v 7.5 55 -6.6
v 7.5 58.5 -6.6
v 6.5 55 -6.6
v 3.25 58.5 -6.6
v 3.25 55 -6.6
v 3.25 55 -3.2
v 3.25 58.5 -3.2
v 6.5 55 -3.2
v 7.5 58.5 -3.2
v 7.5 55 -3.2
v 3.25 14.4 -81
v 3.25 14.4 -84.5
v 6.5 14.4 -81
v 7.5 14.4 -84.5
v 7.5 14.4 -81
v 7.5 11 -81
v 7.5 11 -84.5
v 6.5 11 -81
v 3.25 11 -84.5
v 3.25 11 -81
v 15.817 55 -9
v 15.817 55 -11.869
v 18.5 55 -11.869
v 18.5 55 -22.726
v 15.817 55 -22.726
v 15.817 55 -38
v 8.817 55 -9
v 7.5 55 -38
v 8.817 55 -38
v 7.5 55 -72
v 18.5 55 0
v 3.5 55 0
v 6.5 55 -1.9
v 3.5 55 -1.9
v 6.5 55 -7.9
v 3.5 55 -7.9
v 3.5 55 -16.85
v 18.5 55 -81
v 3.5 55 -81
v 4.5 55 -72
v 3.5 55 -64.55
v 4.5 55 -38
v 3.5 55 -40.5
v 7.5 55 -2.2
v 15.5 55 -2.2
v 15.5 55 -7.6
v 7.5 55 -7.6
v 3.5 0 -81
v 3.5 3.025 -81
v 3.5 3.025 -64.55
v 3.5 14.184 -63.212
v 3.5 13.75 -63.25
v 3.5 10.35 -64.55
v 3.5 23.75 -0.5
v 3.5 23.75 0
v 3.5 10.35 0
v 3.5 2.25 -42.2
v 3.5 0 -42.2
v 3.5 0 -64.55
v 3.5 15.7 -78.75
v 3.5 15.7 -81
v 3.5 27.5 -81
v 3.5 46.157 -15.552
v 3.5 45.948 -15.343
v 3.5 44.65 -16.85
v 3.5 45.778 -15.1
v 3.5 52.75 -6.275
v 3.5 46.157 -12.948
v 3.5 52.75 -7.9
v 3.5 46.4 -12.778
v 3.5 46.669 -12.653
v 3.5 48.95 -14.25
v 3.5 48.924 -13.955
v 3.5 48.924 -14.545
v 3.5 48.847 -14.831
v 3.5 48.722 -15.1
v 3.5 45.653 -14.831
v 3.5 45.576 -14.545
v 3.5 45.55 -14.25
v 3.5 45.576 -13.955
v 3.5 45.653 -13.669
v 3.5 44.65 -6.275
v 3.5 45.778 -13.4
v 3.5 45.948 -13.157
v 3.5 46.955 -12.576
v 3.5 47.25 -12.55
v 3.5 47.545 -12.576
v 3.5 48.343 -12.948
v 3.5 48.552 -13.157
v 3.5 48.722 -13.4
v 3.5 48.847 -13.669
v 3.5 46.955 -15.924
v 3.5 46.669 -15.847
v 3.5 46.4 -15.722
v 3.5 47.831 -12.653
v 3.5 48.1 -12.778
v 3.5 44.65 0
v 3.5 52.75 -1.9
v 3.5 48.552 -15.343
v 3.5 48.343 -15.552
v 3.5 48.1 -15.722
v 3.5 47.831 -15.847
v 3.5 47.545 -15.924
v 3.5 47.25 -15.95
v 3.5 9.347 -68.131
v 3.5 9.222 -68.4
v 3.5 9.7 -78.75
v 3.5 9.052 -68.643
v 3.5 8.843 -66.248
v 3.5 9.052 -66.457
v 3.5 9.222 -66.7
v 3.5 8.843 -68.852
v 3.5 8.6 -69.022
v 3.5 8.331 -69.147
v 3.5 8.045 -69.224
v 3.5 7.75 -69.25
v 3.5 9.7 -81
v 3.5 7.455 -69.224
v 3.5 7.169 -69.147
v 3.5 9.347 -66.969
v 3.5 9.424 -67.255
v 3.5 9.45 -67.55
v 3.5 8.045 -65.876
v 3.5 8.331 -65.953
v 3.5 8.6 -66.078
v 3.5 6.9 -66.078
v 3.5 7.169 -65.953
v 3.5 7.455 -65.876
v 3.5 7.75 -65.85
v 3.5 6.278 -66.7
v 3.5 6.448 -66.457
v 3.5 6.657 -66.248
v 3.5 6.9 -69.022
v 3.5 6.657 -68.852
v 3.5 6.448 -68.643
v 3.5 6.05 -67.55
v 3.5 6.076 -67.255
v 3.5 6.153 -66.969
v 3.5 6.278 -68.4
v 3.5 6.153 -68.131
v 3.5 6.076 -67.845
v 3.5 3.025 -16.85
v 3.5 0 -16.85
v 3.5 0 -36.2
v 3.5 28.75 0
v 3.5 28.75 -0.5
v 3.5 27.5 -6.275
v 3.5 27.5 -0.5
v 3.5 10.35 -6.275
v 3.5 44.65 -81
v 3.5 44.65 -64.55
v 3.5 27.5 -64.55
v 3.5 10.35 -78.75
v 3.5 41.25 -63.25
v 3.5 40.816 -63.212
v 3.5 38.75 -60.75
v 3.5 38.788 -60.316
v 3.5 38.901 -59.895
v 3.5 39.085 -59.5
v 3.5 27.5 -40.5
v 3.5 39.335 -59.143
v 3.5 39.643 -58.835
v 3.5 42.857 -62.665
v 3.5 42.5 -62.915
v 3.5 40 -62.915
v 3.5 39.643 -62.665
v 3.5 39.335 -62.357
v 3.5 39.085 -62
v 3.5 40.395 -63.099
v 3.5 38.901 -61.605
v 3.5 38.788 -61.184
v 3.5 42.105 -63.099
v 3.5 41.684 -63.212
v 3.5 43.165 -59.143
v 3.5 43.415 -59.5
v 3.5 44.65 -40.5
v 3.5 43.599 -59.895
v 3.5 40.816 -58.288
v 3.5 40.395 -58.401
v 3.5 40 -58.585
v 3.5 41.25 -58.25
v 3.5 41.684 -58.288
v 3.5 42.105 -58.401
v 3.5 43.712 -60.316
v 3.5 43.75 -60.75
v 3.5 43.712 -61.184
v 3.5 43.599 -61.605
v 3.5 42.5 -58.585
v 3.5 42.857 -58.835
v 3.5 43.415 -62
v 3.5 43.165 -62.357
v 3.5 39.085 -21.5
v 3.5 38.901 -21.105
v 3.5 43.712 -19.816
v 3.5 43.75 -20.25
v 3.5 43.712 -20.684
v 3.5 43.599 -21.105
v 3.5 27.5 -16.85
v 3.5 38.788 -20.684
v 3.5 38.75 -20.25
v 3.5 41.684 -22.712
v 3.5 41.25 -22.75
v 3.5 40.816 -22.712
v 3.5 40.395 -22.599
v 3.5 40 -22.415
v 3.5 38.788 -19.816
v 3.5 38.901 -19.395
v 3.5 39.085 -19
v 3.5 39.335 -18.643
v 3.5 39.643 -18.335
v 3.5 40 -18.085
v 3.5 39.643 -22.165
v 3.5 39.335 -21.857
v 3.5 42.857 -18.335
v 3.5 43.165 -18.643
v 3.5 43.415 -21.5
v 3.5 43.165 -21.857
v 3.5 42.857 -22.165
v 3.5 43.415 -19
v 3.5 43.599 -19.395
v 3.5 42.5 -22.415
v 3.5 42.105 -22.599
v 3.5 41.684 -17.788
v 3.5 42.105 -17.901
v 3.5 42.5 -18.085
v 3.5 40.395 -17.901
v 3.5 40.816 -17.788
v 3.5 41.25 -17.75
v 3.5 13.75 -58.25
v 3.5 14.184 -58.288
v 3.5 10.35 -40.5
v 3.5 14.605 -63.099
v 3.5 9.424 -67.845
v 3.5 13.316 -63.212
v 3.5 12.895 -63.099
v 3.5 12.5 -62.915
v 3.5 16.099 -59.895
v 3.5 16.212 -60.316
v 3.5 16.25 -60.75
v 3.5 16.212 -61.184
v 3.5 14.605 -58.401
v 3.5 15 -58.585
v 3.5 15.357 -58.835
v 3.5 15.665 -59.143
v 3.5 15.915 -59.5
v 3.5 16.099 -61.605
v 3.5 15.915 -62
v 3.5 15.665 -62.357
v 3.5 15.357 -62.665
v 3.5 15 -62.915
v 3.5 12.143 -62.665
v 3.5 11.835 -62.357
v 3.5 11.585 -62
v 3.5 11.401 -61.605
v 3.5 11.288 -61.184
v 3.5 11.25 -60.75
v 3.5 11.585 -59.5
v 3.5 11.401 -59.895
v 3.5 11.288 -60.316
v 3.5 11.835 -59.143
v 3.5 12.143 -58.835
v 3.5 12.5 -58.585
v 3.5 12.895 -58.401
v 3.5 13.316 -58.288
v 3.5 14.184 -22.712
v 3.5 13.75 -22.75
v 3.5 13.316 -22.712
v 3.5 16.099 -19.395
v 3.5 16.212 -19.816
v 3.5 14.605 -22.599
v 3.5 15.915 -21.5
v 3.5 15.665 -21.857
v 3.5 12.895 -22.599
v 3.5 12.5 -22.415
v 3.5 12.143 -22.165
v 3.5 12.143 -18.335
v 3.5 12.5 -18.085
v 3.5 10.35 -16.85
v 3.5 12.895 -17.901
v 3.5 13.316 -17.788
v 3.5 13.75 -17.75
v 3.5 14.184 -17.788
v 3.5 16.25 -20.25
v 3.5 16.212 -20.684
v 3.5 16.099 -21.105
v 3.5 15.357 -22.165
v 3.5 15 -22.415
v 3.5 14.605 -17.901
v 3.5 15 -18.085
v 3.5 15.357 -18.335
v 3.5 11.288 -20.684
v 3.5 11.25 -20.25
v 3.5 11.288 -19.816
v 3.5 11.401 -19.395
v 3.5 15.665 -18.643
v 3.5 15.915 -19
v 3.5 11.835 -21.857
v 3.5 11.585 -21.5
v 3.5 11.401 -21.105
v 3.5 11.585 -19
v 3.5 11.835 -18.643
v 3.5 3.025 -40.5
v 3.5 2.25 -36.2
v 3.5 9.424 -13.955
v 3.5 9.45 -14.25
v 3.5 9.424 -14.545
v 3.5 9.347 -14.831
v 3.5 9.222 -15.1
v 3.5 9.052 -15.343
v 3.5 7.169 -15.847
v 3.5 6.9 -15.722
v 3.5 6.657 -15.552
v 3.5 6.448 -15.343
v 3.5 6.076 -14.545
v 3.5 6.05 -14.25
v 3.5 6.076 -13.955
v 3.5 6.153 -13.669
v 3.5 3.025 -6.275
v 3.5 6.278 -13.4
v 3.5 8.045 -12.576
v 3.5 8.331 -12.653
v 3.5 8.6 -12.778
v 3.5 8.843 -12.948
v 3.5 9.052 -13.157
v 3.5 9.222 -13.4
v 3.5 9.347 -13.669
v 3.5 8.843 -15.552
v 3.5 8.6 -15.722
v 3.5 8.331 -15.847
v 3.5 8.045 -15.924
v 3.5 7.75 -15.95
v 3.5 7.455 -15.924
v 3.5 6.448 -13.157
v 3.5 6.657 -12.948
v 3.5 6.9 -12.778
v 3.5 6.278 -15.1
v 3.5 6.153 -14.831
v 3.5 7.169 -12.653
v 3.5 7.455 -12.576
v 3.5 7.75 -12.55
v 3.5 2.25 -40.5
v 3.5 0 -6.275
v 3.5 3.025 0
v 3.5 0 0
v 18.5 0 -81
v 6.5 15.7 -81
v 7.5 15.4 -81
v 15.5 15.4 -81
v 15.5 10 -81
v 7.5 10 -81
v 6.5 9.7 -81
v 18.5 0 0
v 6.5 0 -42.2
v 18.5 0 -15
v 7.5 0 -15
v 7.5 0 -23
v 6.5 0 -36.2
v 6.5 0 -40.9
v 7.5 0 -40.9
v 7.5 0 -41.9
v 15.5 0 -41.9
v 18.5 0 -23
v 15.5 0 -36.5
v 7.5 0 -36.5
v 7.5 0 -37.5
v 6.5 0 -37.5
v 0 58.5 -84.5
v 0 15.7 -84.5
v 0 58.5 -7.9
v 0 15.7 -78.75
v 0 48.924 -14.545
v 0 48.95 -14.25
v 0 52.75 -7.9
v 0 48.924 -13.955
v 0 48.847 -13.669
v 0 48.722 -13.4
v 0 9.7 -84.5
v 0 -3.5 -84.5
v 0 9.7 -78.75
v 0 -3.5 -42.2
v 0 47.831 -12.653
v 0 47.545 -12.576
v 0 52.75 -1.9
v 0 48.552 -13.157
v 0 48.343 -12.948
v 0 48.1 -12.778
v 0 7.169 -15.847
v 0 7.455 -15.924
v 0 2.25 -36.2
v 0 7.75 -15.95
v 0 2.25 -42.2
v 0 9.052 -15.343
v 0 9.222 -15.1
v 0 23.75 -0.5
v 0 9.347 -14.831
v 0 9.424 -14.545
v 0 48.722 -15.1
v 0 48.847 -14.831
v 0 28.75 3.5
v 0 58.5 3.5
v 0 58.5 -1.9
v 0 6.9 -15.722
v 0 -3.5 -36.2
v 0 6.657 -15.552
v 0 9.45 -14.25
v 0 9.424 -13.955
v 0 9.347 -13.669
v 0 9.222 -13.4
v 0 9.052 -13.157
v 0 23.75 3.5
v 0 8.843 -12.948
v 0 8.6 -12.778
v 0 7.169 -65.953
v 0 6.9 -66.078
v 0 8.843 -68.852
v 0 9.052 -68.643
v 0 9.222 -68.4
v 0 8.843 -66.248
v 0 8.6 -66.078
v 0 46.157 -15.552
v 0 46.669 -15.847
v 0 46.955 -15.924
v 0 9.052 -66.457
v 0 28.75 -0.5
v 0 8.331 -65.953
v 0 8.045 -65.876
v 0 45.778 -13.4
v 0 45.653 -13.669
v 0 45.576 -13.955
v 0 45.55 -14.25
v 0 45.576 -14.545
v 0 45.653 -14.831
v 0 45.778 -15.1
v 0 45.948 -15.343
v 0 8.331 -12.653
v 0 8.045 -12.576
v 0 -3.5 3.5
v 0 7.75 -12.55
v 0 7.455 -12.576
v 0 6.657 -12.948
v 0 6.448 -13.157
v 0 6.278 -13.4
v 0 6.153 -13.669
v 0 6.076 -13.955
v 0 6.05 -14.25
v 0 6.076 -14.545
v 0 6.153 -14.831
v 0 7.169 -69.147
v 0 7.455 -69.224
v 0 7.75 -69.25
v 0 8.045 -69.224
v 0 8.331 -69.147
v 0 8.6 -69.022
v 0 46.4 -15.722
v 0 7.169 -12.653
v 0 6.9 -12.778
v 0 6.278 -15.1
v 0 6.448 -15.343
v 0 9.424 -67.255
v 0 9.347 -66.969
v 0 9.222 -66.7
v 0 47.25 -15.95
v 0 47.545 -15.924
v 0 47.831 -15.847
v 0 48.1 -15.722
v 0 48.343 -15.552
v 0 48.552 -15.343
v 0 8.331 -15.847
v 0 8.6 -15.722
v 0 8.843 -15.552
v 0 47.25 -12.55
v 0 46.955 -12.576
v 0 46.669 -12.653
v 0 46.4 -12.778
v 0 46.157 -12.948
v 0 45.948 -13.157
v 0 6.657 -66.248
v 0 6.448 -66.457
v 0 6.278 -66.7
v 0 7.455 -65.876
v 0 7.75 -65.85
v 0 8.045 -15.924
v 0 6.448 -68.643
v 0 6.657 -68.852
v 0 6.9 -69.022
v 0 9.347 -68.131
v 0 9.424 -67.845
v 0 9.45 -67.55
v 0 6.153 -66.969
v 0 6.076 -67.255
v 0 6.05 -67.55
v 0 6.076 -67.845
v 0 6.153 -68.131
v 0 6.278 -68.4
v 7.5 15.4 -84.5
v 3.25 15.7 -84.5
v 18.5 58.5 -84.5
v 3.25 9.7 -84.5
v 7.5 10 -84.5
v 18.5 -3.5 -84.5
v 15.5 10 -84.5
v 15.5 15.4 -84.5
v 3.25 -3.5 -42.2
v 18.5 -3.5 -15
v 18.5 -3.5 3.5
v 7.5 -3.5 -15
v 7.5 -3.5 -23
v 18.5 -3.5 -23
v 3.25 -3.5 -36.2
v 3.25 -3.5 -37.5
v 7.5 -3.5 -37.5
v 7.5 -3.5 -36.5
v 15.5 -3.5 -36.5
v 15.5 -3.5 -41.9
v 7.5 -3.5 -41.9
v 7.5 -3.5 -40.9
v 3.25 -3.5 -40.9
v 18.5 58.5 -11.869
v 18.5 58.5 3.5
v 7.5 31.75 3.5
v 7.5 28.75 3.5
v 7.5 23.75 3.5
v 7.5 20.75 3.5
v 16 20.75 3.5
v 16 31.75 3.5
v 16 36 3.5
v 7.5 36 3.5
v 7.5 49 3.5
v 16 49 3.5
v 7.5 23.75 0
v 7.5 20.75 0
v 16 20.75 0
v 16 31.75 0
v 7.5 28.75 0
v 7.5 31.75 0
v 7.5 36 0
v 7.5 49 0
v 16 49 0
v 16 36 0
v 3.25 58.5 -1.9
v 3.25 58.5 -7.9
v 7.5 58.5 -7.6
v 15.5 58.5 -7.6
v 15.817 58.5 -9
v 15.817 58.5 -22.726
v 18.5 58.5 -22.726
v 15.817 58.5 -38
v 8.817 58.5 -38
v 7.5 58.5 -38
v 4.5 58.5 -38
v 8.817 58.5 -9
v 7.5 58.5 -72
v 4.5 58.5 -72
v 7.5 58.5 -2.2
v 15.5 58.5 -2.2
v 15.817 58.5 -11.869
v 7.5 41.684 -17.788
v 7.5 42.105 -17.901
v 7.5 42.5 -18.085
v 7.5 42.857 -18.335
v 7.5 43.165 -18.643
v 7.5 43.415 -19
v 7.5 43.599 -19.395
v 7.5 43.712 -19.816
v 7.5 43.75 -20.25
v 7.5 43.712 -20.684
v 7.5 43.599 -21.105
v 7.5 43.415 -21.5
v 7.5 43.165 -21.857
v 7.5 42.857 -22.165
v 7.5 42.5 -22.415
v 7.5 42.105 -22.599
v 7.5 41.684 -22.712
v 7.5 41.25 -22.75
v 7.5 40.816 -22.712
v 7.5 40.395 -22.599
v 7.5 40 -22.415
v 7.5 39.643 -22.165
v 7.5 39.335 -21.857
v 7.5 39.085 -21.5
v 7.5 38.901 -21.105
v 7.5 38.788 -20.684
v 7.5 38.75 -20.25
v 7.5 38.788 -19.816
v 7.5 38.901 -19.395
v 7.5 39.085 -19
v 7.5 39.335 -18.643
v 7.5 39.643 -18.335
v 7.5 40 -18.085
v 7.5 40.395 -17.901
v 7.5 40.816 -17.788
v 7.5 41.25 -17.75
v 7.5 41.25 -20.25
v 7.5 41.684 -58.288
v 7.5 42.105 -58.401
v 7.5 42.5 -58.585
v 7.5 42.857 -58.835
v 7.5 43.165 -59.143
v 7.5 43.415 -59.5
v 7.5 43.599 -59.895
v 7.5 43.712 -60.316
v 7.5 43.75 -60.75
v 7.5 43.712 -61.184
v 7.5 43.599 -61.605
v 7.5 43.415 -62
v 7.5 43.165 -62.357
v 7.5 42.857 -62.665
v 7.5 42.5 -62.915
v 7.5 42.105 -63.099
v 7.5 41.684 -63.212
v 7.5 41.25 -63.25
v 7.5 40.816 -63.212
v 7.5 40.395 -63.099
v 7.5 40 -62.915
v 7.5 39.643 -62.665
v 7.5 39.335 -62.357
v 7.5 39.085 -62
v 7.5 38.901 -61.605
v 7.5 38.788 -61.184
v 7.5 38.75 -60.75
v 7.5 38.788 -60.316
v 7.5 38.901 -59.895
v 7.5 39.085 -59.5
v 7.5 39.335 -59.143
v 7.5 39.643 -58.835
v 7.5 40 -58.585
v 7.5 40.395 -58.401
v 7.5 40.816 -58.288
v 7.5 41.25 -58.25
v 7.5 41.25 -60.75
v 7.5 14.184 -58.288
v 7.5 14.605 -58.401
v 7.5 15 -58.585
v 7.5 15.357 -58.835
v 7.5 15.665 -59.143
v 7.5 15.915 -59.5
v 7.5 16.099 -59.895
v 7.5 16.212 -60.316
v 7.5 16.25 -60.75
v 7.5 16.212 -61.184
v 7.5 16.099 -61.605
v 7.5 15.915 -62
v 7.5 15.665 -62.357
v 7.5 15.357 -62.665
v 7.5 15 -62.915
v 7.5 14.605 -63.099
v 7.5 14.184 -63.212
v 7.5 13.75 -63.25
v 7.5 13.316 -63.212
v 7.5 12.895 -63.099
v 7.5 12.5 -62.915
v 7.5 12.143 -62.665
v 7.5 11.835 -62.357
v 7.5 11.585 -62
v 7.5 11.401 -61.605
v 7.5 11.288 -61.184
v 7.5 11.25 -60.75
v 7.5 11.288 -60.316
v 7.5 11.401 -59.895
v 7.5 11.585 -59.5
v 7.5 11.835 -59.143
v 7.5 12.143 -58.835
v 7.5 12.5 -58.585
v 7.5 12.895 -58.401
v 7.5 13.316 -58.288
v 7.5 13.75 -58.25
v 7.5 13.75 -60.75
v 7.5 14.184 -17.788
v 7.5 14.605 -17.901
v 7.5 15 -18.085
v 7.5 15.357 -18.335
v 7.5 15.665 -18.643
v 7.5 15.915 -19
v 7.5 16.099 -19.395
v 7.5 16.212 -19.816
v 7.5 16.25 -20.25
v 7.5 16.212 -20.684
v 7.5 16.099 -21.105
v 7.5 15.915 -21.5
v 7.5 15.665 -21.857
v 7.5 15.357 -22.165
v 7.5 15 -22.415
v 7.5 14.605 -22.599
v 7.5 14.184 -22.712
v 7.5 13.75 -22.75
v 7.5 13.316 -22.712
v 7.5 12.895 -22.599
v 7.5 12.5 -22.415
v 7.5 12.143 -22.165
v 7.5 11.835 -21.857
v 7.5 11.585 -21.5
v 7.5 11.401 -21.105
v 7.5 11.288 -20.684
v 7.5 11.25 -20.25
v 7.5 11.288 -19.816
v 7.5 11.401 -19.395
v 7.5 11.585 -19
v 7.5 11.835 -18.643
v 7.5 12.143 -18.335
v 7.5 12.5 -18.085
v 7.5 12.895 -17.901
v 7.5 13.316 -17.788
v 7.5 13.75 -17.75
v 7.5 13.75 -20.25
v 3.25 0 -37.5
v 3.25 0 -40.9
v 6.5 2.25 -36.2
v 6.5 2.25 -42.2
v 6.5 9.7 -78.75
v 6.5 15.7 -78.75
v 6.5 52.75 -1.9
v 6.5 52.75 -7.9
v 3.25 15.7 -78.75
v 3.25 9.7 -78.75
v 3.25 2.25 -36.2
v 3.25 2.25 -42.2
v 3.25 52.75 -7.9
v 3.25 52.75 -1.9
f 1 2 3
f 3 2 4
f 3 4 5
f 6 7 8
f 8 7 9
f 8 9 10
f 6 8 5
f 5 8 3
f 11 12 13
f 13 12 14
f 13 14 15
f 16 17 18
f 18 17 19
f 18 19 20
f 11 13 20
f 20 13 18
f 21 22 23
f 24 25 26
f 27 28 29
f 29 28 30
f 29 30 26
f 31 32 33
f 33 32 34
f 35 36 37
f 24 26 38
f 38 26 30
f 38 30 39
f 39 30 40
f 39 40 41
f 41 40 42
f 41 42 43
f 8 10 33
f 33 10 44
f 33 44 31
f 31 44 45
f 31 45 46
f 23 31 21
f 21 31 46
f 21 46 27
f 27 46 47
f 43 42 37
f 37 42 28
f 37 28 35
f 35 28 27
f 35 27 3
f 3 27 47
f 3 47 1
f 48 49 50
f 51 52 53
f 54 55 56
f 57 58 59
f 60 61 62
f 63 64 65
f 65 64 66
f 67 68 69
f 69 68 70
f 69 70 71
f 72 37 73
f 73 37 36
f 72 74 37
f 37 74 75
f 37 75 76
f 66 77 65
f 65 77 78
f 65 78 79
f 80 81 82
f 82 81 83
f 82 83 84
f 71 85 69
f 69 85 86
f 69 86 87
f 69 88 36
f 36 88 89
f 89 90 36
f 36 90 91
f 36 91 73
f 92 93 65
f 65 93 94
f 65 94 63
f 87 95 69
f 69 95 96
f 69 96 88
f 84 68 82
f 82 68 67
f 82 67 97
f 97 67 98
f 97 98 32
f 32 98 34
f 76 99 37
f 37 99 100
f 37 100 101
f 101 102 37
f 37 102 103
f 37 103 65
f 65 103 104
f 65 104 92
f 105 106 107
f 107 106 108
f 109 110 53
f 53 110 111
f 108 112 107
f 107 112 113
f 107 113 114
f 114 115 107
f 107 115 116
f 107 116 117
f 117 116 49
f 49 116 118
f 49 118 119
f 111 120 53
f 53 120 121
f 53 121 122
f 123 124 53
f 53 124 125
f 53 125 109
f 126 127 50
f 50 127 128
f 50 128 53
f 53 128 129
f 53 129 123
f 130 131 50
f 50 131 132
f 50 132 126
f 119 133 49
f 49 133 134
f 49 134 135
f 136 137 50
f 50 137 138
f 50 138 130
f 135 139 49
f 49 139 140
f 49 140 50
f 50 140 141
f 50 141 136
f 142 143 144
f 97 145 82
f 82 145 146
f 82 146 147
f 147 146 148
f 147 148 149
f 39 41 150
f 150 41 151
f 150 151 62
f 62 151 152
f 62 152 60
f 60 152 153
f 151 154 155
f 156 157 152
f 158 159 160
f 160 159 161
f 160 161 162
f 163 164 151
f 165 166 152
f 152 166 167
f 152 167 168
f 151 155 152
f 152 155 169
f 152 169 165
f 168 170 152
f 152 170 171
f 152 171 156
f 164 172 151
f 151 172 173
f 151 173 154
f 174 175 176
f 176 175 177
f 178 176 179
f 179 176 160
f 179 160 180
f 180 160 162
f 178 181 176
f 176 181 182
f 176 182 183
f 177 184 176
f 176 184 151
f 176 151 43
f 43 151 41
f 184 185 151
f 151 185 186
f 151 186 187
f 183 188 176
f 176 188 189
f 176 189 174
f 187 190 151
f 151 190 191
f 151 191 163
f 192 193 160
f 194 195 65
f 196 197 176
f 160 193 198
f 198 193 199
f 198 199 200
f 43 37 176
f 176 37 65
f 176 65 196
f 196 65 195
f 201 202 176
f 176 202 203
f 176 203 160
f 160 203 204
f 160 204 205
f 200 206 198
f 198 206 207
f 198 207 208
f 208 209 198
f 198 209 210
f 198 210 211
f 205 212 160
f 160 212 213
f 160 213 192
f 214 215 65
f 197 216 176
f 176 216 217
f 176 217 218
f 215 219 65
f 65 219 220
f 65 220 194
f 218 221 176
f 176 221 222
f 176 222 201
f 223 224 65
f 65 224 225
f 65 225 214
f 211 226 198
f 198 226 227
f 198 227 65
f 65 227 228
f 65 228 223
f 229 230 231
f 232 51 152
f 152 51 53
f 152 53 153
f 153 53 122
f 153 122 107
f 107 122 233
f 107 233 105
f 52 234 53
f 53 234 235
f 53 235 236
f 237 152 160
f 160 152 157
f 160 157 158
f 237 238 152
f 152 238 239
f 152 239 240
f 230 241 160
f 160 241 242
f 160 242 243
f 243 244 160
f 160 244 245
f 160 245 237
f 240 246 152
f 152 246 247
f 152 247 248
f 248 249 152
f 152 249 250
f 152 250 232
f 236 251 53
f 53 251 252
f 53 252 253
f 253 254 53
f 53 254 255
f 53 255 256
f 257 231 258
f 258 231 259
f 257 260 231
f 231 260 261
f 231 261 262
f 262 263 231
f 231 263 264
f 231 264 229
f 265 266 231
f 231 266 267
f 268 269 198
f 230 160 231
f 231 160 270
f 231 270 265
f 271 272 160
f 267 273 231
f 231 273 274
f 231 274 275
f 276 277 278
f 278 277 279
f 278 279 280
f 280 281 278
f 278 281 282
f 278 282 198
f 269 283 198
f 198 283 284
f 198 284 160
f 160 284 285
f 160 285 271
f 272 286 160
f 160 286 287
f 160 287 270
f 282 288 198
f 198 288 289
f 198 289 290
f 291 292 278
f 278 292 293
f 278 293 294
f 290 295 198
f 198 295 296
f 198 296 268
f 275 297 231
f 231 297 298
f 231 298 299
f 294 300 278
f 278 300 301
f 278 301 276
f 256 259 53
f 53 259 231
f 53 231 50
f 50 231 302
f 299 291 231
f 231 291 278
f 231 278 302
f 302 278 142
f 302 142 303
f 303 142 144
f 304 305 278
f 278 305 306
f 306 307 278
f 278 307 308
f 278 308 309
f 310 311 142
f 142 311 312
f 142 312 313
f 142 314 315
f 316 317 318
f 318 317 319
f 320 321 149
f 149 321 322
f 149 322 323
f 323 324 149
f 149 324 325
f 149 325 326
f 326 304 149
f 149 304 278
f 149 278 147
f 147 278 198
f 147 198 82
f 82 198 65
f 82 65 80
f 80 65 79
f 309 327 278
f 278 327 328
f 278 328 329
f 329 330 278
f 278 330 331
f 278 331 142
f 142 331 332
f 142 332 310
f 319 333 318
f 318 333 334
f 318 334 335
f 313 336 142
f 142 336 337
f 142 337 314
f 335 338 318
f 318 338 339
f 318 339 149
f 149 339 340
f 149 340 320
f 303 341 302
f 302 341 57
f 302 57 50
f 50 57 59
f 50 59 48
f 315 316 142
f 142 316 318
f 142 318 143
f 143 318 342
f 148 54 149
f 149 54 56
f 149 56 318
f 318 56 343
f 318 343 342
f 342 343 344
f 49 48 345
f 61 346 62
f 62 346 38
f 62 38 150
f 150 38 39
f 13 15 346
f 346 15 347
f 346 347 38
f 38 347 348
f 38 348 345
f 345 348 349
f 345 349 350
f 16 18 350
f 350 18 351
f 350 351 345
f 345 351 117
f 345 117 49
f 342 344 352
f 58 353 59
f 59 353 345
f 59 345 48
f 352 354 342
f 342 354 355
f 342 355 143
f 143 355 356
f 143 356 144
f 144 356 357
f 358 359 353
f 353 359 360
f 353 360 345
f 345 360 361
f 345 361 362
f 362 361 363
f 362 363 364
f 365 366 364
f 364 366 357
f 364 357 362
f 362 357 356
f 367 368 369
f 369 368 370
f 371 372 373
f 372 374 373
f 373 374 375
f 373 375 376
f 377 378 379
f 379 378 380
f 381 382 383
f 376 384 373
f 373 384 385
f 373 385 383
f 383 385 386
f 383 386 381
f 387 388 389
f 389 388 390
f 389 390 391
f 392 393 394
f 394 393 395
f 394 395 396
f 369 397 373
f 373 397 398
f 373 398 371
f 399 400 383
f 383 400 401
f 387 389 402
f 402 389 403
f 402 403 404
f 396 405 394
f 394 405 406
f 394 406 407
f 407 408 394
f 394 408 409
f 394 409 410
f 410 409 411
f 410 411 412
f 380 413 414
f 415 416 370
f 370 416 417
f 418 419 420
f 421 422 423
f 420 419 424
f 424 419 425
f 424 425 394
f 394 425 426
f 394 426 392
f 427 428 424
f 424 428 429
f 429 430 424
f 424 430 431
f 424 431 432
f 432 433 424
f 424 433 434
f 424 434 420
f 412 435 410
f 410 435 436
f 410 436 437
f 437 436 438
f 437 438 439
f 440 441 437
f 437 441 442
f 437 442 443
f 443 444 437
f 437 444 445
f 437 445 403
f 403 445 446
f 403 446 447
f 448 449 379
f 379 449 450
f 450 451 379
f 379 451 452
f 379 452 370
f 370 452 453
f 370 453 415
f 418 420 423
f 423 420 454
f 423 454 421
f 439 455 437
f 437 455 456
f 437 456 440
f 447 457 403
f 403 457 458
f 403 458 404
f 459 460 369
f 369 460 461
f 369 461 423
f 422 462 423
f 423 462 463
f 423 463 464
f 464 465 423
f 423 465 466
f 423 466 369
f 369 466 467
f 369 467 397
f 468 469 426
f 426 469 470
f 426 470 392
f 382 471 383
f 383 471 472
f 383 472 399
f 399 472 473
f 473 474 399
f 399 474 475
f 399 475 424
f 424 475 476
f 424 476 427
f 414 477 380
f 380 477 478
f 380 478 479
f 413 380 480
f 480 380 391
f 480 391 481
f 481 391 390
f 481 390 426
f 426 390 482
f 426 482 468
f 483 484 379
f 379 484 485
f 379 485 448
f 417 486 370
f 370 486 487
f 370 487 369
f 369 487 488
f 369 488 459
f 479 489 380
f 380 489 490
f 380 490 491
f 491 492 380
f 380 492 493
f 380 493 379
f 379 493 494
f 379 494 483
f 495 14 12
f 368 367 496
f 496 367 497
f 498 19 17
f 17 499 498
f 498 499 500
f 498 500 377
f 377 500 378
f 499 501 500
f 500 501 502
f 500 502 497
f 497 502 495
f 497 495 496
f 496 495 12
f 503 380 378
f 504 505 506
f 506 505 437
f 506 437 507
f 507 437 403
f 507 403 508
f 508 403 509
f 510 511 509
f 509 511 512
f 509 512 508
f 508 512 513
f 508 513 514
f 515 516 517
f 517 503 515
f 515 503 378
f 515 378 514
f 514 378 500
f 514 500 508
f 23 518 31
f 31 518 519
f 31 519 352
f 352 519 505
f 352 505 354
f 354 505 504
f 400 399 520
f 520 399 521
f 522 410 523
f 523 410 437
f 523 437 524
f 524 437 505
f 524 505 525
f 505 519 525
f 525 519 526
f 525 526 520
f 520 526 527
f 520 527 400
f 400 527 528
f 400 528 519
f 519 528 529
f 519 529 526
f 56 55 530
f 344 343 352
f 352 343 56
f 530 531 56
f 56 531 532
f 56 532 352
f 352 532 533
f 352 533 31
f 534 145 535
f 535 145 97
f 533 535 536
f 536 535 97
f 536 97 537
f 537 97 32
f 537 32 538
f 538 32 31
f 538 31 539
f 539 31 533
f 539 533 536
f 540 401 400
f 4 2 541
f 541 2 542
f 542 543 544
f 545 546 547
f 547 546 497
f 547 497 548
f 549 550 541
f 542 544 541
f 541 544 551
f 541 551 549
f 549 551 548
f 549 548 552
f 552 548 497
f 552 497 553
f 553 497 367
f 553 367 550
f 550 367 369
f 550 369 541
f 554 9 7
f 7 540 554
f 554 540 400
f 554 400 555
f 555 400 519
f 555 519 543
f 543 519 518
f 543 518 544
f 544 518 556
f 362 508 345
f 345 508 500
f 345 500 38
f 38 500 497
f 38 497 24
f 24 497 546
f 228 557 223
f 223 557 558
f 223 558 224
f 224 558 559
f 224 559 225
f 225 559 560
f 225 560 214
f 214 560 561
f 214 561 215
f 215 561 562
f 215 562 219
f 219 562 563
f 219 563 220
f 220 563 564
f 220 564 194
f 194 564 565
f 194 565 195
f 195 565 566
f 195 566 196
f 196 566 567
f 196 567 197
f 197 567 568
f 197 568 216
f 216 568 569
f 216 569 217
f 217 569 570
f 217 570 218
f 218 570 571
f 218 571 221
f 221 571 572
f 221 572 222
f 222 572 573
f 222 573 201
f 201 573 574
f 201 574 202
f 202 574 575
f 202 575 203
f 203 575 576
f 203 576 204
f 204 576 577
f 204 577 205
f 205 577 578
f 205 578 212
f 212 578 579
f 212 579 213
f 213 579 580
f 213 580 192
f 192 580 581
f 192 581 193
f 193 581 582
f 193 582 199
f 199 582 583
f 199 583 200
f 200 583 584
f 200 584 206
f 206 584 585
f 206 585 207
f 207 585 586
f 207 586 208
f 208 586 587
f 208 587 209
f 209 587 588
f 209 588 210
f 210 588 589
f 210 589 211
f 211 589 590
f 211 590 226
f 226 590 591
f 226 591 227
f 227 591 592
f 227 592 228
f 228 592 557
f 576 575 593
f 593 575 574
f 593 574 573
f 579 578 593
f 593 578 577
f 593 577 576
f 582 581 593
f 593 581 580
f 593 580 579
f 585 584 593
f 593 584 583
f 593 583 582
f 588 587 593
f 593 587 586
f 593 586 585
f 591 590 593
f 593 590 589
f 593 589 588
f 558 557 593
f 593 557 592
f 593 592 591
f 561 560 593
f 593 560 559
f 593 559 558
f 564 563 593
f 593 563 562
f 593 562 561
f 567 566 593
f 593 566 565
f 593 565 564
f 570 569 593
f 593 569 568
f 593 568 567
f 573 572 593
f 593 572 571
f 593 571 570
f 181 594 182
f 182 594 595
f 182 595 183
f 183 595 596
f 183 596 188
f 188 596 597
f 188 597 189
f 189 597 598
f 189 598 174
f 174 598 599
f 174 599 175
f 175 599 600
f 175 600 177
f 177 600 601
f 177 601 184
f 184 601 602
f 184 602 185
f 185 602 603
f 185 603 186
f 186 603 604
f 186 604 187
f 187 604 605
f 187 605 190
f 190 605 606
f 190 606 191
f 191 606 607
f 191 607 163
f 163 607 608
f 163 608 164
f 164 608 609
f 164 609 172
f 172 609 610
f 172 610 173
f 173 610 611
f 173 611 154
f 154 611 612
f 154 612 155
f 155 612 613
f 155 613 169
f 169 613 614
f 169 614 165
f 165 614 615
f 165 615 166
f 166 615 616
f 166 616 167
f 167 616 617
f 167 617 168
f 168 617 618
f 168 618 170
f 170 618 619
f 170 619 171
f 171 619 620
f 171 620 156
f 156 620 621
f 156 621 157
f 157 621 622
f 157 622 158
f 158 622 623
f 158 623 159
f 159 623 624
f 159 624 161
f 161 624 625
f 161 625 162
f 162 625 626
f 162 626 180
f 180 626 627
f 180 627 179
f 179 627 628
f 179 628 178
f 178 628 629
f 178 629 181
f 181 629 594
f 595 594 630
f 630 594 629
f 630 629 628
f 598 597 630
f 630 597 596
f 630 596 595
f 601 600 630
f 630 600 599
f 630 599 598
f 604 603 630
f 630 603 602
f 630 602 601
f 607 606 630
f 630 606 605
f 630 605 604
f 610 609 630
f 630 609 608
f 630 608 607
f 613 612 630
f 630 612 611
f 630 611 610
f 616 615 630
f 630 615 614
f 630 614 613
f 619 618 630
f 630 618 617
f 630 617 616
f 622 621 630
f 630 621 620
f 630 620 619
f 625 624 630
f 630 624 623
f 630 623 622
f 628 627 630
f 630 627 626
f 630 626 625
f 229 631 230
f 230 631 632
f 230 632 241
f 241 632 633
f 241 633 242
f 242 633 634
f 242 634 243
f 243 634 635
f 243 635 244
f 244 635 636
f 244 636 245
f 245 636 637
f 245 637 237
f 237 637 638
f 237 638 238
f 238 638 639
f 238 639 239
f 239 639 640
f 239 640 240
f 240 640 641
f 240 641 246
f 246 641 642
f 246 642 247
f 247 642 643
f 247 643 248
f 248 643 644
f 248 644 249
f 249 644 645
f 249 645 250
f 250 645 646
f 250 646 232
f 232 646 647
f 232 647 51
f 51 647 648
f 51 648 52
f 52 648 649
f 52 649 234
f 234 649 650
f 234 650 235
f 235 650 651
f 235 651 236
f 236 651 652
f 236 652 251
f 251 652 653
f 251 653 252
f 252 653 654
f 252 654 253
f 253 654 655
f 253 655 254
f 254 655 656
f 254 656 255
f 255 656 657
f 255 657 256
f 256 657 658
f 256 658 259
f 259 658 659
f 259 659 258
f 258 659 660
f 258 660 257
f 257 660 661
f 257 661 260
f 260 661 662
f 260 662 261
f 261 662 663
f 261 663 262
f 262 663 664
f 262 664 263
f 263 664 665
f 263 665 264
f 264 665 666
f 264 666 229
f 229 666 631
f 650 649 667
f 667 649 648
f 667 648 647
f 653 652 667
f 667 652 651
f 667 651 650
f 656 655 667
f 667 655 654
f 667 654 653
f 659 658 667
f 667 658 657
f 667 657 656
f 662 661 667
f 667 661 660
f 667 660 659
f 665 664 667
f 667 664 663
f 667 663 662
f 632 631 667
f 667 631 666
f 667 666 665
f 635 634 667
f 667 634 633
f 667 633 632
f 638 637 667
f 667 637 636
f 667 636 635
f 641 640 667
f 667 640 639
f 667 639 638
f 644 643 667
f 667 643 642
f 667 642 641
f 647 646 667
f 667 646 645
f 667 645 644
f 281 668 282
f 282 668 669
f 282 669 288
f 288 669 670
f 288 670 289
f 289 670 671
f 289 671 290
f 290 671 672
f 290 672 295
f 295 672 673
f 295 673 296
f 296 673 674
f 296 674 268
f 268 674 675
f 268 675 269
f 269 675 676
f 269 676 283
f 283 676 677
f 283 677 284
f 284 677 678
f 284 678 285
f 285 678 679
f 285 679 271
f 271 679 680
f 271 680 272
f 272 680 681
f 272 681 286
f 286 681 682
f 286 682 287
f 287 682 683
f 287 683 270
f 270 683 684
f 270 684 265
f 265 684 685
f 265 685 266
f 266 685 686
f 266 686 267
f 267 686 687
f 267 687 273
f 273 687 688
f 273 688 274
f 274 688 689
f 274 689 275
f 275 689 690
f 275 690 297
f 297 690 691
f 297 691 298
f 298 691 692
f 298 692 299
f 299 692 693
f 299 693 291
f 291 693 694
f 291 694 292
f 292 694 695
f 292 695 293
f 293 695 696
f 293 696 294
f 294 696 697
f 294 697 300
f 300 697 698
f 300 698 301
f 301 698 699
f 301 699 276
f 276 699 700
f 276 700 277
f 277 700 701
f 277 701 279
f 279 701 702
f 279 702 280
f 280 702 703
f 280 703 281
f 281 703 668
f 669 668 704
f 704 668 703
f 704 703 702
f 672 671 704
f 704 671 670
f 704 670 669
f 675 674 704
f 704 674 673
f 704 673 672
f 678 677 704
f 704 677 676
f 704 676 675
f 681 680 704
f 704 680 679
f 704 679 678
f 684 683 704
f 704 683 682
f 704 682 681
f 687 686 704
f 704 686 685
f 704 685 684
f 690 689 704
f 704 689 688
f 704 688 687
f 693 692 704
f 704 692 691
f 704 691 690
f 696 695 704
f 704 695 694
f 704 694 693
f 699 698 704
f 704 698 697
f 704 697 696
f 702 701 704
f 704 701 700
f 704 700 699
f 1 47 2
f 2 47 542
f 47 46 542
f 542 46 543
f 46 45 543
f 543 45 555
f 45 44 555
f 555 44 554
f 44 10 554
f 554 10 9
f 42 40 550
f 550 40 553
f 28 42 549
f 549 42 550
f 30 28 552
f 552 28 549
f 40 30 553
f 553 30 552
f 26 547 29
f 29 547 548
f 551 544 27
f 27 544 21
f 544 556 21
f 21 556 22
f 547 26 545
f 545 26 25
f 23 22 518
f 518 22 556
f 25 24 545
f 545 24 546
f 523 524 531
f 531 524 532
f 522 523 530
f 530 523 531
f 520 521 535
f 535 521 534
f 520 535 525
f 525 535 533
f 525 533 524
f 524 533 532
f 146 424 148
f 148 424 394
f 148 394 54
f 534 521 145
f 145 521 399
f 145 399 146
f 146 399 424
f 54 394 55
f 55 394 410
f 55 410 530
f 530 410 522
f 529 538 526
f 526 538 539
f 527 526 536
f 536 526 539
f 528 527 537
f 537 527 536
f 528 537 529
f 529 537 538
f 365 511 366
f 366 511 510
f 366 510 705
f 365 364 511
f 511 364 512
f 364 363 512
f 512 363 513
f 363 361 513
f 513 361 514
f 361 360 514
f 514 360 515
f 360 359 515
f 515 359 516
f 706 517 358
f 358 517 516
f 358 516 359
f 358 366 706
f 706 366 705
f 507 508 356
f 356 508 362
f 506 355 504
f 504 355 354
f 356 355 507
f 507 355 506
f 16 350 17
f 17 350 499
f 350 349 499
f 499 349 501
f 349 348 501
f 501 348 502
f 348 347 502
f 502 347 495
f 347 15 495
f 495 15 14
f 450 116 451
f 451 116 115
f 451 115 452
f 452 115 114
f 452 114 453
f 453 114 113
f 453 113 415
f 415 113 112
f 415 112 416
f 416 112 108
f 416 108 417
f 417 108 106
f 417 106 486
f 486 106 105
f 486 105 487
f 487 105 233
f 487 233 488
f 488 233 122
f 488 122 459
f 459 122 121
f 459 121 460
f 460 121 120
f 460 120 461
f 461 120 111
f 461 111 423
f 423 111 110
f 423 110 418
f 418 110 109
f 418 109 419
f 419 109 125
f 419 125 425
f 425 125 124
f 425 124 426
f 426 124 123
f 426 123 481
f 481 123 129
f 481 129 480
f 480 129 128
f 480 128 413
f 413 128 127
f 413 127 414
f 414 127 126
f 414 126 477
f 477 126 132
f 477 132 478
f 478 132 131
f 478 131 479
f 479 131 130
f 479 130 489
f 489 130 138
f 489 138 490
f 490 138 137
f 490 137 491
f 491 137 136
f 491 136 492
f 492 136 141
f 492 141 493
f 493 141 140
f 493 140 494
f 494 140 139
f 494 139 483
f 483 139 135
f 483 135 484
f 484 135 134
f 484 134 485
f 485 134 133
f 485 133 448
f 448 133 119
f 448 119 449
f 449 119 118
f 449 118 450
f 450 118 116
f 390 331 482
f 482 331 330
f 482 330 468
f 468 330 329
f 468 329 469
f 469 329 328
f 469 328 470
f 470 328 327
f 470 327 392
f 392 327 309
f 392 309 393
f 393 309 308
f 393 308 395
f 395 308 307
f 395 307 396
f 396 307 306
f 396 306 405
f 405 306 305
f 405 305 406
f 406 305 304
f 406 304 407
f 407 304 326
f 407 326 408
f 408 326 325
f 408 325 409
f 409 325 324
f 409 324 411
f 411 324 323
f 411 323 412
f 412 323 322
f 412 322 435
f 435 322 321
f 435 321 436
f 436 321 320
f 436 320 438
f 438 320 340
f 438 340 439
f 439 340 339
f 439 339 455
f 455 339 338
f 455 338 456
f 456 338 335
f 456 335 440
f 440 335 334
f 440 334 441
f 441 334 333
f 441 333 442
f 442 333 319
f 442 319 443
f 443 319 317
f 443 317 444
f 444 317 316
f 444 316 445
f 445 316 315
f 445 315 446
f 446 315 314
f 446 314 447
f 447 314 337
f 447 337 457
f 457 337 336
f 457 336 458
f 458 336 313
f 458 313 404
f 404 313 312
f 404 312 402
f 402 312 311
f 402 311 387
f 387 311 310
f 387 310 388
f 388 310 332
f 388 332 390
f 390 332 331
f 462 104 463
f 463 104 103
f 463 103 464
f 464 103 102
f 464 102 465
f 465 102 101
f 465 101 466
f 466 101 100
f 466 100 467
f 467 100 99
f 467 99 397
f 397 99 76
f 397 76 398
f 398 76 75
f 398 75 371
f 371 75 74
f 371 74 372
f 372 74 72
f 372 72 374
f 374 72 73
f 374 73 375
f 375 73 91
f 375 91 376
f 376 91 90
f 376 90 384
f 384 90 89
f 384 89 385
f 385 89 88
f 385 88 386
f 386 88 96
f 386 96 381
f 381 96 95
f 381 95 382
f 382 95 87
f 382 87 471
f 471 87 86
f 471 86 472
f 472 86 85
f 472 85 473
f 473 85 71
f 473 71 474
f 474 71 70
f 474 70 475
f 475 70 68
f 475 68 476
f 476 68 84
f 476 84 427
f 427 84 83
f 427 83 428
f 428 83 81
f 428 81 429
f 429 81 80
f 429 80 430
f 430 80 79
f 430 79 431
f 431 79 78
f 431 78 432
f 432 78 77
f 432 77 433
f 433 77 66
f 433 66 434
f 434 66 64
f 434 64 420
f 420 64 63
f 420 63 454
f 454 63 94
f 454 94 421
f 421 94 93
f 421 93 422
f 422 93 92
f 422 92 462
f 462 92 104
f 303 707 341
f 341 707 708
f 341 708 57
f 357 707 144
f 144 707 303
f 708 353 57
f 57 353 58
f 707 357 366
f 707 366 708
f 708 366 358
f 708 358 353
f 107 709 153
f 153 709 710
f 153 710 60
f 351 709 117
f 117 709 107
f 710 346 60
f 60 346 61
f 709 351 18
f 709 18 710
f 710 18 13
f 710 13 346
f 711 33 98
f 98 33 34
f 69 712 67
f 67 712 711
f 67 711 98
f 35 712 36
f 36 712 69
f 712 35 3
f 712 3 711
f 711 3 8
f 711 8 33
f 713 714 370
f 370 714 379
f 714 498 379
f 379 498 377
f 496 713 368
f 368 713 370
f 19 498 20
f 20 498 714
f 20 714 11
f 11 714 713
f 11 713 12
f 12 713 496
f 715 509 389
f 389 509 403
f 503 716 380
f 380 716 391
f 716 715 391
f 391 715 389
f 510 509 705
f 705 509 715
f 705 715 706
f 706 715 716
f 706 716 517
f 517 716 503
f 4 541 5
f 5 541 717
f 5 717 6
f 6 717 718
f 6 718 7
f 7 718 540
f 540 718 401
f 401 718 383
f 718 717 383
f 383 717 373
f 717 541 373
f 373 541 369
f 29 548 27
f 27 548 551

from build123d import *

# Parameters (mm, degrees)
SKETCH_1_W          = 88
SKETCH_1_H          = 62
EXTRUDE_1_DEPTH     = 3.5
SKETCH_2_W          = 88
SKETCH_2_H          = 62
SKETCH_2_W_2        = 81
SKETCH_2_H_2        = 55
EXTRUDE_2_DEPTH     = 15
SKETCH_3_R          = 2.5
EXTRUDE_3_DEPTH     = 4
SKETCH_4_W          = 3
SKETCH_4_H          = 34
SKETCH_4_W_2        = 2.683429954
SKETCH_4_H_2        = 10.857152268
CUT_EXTRUDE_2_DEPTH = 3.5
SKETCH_7_W          = 8.5
SKETCH_7_H          = 11
SKETCH_7_H_2        = 13
SKETCH_7_W_2        = 7.5
SKETCH_7_H_3        = 2.5
CUT_EXTRUDE_3_DEPTH = 4
SKETCH_8_W          = 12
SKETCH_8_H          = 8
CUT_EXTRUDE_4_DEPTH = 3.5
CUT_EXTRUDE_5_DEPTH = 3.5
SKETCH_10_R         = 1.7
CUT_EXTRUDE_6_DEPTH = 3.5
EXTRUDE_4_DEPTH     = 3
SKETCH_12_W         = 6
SKETCH_12_H         = 5.75
SKETCH_12_W_2       = 5.75
SKETCH_12_H_2       = 6
CUT_EXTRUDE_7_DEPTH = 3.25
SKETCH_13_W         = 29
SKETCH_13_H         = 3.5
EXTRUDE_5_DEPTH     = 2


with BuildPart() as part:
    # 草图1 → 凸台-拉伸1 (new body)
    with BuildSketch(Plane(origin=(0, 0, 0), x_dir=(0, 0, -1), z_dir=(1, 0, 0))):
        with Locations((40.5, 27.5)):
            Rectangle(SKETCH_1_W, SKETCH_1_H)
    extrude(amount=EXTRUDE_1_DEPTH)

    # 草图2 → 凸台-拉伸2 (add)
    with BuildSketch(Plane(origin=(3.5, 0, 0), x_dir=(0, 0, -1), z_dir=(1, 0, 0))):
        with Locations((40.5, 27.5)):
            Rectangle(SKETCH_2_W, SKETCH_2_H)
        with Locations((40.5, 27.5)):
            Rectangle(SKETCH_2_W_2, SKETCH_2_H_2, mode=Mode.SUBTRACT)
    extrude(amount=EXTRUDE_2_DEPTH)

    # 草图3 → 凸台-拉伸3 (add)
    with BuildSketch(Plane(origin=(3.5, 0, 0), x_dir=(0, 0, -1), z_dir=(1, 0, 0))):
        with Locations((20.25, 41.25)):
            Circle(SKETCH_3_R)
        with Locations((60.75, 41.25)):
            Circle(SKETCH_3_R)
        with Locations((60.75, 13.75)):
            Circle(SKETCH_3_R)
        with Locations((20.25, 13.75)):
            Circle(SKETCH_3_R)
    extrude(amount=EXTRUDE_3_DEPTH)

    # 草图4 → 切除-拉伸2 (cut)
    with BuildSketch(Plane(origin=(0, 58.5, 0), x_dir=(1, 0, 0), z_dir=(0, 1, 0))):
        with Locations((6, 55)):
            Rectangle(SKETCH_4_W, SKETCH_4_H)
        Polygon((7.5, 38), (6.816570046, 38), (6.816570046, 9), (15.816570046, 9), (15.816570046, 11.869210194), (15.816570046, 22.726362462), (15.816570046, 38), align=None)
        Polygon((0, 3.2), (7.5, 3.2), (7.5, 2.2), (15.5, 2.2), (15.5, 7.6), (7.5, 7.6), (7.5, 6.6), (0, 6.6), align=None)
        with Locations((17.158285023, 17.297786328)):
            Rectangle(SKETCH_4_W_2, SKETCH_4_H_2)
    extrude(amount=-CUT_EXTRUDE_2_DEPTH, mode=Mode.SUBTRACT)

    # 草图7 → 切除-拉伸3 (cut)
    with BuildSketch(Plane.XY.offset(3.5)):
        with Locations((11.75, 26.25)):
            Rectangle(SKETCH_7_W, SKETCH_7_H)
        with Locations((11.75, 42.5)):
            Rectangle(SKETCH_7_W, SKETCH_7_H_2)
        with Locations((3.75, 27.5)):
            Rectangle(SKETCH_7_W_2, SKETCH_7_H_3)
        with Locations((3.75, 25)):
            Rectangle(SKETCH_7_W_2, SKETCH_7_H_3)
    extrude(amount=-CUT_EXTRUDE_3_DEPTH, mode=Mode.SUBTRACT)

    # 草图8 → 切除-拉伸4 (cut)
    with BuildSketch(Plane.XZ.offset(3.5)):
        with Locations((13.5, -19)):
            Rectangle(SKETCH_8_W, SKETCH_8_H)
        Polygon((7.5, -36.5), (15.5, -36.5), (15.5, -41.9), (7.5, -41.9), (7.5, -40.9), (0, -40.9), (0, -37.5), (7.5, -37.5), align=None)
    extrude(amount=-CUT_EXTRUDE_4_DEPTH, mode=Mode.SUBTRACT)

    # 草图9 → 切除-拉伸5 (cut)
    with BuildSketch(Plane(origin=(0, 0, -84.5), x_dir=(-1, 0, 0), z_dir=(0, 0, -1))):
        Polygon((-7.5, 11), (0, 11), (0, 14.4), (-7.5, 14.4), (-7.5, 15.4), (-15.5, 15.4), (-15.5, 10), (-7.5, 10), align=None)
    extrude(amount=-CUT_EXTRUDE_5_DEPTH, mode=Mode.SUBTRACT)

    # 草图10 → 切除-拉伸6 (cut)
    with BuildSketch(Plane(origin=(3.5, 0, 0), x_dir=(0, 0, -1), z_dir=(1, 0, 0))):
        with Locations((14.25, 47.25)):
            Circle(SKETCH_10_R)
        with Locations((14.25, 7.75)):
            Circle(SKETCH_10_R)
        with Locations((67.55, 7.75)):
            Circle(SKETCH_10_R)
    extrude(amount=-CUT_EXTRUDE_6_DEPTH, mode=Mode.SUBTRACT)

    # 草图11 → 凸台-拉伸4 (add)
    with BuildSketch(Plane(origin=(3.5, 0, 0), x_dir=(0, 0, -1), z_dir=(1, 0, 0))):
        Polygon((40.9, 0), (42.2, 0), (42.2, 2.25), (36.2, 2.25), (36.2, 0), (37.5, 0), align=None)
        Polygon((81, 14.4), (81, 15.7), (78.75, 15.7), (78.75, 9.7), (81, 9.7), (81, 11), align=None)
        Polygon((4.9, 52.75), (4.9, 55), (3.2, 55), (1.9, 55), (1.9, 52.75), align=None)
        Polygon((6.6, 55), (4.9, 55), (4.9, 52.75), (7.9, 52.75), (7.9, 55), align=None)
    extrude(amount=EXTRUDE_4_DEPTH)

    # 草图12 → 切除-拉伸7 (cut)
    with BuildSketch(Plane.ZY):
        with Locations((-4.9, 55.625)):
            Rectangle(SKETCH_12_W, SKETCH_12_H)
        with Locations((-39.2, -0.625)):
            Rectangle(SKETCH_12_W, SKETCH_12_H)
        with Locations((-81.625, 12.7)):
            Rectangle(SKETCH_12_W_2, SKETCH_12_H_2)
    extrude(amount=-CUT_EXTRUDE_7_DEPTH, mode=Mode.SUBTRACT)

    # 草图13 → 凸台-拉伸5 (add)
    with BuildSketch(Plane(origin=(6.816570046, 0, 0), x_dir=(0, 0, -1), z_dir=(1, 0, 0))):
        with Locations((23.5, 56.75)):
            Rectangle(SKETCH_13_W, SKETCH_13_H)
    extrude(amount=EXTRUDE_5_DEPTH)


solid = part.part
